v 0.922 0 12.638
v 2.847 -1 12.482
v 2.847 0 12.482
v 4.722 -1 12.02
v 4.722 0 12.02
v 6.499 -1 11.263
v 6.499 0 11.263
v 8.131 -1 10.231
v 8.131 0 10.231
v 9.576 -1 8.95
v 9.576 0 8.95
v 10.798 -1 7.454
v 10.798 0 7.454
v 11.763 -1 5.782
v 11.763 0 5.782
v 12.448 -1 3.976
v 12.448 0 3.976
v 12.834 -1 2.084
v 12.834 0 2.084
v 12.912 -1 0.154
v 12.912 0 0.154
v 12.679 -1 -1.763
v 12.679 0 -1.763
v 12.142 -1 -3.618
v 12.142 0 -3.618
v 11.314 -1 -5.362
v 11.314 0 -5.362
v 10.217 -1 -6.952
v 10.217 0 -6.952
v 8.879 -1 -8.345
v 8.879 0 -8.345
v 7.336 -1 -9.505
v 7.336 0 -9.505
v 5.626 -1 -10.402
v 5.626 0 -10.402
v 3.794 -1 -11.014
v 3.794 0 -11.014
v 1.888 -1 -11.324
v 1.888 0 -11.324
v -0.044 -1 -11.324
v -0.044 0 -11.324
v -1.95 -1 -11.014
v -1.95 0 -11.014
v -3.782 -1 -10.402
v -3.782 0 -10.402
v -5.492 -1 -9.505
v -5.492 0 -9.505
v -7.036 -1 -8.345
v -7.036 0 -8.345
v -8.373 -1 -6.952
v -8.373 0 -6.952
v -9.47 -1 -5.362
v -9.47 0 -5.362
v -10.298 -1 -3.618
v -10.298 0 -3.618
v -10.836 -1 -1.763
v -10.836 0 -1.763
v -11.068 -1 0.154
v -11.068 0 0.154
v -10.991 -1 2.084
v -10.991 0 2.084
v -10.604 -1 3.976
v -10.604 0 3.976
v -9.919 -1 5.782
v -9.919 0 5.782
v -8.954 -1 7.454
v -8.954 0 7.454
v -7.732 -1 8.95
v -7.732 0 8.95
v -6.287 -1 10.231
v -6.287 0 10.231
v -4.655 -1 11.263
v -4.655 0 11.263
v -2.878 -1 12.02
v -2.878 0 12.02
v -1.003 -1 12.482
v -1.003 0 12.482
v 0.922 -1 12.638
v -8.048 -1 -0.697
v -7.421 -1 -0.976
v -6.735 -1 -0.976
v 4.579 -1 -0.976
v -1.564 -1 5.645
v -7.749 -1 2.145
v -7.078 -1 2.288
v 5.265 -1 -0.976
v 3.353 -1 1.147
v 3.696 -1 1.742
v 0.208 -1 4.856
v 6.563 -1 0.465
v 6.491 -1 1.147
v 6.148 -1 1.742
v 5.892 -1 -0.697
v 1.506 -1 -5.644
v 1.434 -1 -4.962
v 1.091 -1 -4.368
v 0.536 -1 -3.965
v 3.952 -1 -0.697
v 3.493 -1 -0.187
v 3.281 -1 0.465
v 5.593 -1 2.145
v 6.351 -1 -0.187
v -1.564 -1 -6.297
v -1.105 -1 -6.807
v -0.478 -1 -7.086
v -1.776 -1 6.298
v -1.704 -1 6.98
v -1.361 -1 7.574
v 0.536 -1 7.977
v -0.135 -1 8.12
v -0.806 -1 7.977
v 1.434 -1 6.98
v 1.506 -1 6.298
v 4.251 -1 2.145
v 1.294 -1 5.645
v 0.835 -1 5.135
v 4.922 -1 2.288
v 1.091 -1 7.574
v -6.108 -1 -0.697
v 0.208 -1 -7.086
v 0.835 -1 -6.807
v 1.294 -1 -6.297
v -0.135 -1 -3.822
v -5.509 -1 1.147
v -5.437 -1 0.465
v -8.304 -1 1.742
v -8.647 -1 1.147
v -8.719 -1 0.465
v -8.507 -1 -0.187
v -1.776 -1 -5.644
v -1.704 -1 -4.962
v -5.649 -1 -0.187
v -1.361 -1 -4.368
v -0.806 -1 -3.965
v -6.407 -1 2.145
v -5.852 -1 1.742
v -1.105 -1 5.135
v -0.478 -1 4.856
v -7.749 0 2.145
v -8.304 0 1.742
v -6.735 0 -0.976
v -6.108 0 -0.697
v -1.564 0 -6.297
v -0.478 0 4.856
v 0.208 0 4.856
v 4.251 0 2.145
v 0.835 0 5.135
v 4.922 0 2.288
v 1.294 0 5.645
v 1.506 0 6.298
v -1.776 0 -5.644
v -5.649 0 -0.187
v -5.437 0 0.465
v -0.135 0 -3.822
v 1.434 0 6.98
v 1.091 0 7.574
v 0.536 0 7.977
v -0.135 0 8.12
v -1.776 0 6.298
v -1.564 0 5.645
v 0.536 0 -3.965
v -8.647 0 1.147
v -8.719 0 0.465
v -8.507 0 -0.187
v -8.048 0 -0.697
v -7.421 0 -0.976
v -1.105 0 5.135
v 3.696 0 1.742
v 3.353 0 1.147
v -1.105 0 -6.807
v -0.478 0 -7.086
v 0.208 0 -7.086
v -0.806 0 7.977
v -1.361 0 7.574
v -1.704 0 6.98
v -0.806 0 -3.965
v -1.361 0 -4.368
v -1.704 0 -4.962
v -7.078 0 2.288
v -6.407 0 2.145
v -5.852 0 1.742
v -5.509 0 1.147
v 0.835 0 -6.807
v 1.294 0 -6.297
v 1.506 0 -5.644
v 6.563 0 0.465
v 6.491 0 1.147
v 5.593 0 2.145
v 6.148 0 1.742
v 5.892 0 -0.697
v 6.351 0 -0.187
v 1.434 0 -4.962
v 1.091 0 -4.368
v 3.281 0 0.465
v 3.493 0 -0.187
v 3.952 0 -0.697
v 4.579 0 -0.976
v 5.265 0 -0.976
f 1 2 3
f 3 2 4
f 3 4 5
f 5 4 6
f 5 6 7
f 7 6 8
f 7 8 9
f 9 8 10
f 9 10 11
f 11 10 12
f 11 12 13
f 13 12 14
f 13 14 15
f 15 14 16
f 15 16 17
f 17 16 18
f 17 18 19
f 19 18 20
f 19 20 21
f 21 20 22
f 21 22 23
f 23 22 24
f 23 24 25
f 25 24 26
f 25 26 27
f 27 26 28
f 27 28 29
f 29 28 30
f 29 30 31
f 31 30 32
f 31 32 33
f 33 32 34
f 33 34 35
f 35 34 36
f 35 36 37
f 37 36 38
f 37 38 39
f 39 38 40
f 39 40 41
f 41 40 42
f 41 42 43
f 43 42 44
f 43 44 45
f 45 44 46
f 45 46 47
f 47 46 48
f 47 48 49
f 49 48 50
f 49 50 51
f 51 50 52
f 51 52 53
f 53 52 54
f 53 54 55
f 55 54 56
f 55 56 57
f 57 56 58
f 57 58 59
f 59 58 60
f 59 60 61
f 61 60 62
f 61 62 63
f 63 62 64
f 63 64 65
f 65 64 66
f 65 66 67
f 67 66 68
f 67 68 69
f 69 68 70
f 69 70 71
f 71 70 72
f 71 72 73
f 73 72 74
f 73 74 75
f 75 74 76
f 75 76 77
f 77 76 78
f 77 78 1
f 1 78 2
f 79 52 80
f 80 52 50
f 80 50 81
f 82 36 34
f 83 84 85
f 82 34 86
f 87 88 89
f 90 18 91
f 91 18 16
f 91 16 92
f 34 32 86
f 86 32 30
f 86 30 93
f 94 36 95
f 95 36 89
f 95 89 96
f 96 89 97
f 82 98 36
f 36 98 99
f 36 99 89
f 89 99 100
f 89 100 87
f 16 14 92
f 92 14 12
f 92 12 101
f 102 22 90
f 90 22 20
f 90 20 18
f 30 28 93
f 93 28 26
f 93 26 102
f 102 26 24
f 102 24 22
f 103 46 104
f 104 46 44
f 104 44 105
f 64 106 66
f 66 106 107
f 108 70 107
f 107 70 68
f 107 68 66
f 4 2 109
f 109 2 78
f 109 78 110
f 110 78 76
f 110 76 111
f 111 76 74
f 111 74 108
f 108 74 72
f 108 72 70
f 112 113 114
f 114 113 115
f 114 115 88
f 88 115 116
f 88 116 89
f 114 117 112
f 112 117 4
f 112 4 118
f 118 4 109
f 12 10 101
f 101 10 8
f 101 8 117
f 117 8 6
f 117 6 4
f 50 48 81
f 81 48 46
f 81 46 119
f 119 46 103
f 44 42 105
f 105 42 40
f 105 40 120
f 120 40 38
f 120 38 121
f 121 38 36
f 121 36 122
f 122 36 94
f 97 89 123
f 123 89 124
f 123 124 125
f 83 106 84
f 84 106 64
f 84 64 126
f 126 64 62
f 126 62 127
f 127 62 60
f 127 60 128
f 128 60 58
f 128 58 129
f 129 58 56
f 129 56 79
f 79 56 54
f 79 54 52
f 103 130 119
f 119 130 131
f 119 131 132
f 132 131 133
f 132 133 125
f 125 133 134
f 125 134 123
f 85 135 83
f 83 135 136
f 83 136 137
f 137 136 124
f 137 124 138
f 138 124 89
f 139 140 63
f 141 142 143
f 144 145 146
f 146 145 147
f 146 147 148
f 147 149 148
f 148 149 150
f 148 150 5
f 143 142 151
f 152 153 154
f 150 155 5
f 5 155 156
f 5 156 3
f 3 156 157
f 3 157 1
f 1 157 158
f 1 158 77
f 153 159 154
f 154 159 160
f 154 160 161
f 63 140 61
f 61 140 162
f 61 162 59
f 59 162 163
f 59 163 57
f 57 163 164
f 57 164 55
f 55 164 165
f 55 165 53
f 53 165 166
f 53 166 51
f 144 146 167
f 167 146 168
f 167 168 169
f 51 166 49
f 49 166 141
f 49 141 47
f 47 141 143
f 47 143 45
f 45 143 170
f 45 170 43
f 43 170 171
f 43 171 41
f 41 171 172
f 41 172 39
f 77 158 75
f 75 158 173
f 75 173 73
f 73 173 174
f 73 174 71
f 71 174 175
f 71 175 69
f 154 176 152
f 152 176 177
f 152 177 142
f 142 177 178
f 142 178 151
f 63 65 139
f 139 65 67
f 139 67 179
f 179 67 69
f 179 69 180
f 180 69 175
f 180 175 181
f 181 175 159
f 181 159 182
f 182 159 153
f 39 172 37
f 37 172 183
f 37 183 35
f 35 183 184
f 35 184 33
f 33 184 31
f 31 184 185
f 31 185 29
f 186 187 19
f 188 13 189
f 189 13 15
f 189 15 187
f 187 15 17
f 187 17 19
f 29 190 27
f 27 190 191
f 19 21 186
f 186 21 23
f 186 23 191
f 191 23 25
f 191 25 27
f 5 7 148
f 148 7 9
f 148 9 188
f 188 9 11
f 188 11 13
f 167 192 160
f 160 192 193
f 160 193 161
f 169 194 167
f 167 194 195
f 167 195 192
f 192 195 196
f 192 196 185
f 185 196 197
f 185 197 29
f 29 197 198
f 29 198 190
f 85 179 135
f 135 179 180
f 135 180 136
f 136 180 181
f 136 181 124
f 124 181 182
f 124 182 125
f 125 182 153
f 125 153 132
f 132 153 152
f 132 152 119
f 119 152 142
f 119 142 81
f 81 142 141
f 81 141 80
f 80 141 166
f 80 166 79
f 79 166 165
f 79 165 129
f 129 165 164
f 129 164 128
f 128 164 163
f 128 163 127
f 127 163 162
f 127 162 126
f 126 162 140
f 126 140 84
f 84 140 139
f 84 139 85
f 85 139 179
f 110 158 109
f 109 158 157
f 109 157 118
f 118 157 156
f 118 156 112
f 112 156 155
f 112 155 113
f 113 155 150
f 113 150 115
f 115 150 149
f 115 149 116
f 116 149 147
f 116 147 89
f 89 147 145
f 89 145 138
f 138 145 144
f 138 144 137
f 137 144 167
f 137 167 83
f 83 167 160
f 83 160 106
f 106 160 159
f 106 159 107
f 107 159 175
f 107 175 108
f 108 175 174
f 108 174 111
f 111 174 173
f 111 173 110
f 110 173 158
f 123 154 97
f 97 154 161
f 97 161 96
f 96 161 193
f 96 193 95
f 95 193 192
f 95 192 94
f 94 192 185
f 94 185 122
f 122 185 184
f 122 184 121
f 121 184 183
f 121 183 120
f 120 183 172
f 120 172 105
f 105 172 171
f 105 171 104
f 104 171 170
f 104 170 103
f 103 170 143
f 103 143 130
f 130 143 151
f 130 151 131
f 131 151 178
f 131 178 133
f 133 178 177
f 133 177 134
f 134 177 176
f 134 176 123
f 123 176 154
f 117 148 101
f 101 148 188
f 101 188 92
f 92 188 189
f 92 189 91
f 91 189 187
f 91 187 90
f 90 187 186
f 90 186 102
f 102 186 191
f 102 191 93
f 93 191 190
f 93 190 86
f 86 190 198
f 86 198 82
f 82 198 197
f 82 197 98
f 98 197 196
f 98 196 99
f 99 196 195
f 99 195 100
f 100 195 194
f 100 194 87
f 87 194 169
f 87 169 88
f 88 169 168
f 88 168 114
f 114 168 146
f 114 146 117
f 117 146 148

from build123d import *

# Parameters (mm, degrees)
SKETCH1_R           = 12
SKETCH1_R_2         = 1.65
BOSS_EXTRUDE1_DEPTH = 1


with BuildPart() as part:
    # Sketch1 → Boss-Extrude1 (new body)
    with BuildSketch(Plane(origin=(0, 0, 0), x_dir=(1, 0, 0), z_dir=(0, 1, 0))):
        with Locations((0.918840798, -0.637389416)):
            Circle(SKETCH1_R)
        with Locations((-0.138265228, 5.472098091)):
            Circle(SKETCH1_R_2, mode=Mode.SUBTRACT)
        with Locations((-0.138265228, -6.469943597)):
            Circle(SKETCH1_R_2, mode=Mode.SUBTRACT)
        with Locations((-7.081159202, -0.637389416)):
            Circle(SKETCH1_R_2, mode=Mode.SUBTRACT)
        with Locations((4.918840798, -0.637389416)):
            Circle(SKETCH1_R_2, mode=Mode.SUBTRACT)
    extrude(amount=-BOSS_EXTRUDE1_DEPTH)


solid = part.part
